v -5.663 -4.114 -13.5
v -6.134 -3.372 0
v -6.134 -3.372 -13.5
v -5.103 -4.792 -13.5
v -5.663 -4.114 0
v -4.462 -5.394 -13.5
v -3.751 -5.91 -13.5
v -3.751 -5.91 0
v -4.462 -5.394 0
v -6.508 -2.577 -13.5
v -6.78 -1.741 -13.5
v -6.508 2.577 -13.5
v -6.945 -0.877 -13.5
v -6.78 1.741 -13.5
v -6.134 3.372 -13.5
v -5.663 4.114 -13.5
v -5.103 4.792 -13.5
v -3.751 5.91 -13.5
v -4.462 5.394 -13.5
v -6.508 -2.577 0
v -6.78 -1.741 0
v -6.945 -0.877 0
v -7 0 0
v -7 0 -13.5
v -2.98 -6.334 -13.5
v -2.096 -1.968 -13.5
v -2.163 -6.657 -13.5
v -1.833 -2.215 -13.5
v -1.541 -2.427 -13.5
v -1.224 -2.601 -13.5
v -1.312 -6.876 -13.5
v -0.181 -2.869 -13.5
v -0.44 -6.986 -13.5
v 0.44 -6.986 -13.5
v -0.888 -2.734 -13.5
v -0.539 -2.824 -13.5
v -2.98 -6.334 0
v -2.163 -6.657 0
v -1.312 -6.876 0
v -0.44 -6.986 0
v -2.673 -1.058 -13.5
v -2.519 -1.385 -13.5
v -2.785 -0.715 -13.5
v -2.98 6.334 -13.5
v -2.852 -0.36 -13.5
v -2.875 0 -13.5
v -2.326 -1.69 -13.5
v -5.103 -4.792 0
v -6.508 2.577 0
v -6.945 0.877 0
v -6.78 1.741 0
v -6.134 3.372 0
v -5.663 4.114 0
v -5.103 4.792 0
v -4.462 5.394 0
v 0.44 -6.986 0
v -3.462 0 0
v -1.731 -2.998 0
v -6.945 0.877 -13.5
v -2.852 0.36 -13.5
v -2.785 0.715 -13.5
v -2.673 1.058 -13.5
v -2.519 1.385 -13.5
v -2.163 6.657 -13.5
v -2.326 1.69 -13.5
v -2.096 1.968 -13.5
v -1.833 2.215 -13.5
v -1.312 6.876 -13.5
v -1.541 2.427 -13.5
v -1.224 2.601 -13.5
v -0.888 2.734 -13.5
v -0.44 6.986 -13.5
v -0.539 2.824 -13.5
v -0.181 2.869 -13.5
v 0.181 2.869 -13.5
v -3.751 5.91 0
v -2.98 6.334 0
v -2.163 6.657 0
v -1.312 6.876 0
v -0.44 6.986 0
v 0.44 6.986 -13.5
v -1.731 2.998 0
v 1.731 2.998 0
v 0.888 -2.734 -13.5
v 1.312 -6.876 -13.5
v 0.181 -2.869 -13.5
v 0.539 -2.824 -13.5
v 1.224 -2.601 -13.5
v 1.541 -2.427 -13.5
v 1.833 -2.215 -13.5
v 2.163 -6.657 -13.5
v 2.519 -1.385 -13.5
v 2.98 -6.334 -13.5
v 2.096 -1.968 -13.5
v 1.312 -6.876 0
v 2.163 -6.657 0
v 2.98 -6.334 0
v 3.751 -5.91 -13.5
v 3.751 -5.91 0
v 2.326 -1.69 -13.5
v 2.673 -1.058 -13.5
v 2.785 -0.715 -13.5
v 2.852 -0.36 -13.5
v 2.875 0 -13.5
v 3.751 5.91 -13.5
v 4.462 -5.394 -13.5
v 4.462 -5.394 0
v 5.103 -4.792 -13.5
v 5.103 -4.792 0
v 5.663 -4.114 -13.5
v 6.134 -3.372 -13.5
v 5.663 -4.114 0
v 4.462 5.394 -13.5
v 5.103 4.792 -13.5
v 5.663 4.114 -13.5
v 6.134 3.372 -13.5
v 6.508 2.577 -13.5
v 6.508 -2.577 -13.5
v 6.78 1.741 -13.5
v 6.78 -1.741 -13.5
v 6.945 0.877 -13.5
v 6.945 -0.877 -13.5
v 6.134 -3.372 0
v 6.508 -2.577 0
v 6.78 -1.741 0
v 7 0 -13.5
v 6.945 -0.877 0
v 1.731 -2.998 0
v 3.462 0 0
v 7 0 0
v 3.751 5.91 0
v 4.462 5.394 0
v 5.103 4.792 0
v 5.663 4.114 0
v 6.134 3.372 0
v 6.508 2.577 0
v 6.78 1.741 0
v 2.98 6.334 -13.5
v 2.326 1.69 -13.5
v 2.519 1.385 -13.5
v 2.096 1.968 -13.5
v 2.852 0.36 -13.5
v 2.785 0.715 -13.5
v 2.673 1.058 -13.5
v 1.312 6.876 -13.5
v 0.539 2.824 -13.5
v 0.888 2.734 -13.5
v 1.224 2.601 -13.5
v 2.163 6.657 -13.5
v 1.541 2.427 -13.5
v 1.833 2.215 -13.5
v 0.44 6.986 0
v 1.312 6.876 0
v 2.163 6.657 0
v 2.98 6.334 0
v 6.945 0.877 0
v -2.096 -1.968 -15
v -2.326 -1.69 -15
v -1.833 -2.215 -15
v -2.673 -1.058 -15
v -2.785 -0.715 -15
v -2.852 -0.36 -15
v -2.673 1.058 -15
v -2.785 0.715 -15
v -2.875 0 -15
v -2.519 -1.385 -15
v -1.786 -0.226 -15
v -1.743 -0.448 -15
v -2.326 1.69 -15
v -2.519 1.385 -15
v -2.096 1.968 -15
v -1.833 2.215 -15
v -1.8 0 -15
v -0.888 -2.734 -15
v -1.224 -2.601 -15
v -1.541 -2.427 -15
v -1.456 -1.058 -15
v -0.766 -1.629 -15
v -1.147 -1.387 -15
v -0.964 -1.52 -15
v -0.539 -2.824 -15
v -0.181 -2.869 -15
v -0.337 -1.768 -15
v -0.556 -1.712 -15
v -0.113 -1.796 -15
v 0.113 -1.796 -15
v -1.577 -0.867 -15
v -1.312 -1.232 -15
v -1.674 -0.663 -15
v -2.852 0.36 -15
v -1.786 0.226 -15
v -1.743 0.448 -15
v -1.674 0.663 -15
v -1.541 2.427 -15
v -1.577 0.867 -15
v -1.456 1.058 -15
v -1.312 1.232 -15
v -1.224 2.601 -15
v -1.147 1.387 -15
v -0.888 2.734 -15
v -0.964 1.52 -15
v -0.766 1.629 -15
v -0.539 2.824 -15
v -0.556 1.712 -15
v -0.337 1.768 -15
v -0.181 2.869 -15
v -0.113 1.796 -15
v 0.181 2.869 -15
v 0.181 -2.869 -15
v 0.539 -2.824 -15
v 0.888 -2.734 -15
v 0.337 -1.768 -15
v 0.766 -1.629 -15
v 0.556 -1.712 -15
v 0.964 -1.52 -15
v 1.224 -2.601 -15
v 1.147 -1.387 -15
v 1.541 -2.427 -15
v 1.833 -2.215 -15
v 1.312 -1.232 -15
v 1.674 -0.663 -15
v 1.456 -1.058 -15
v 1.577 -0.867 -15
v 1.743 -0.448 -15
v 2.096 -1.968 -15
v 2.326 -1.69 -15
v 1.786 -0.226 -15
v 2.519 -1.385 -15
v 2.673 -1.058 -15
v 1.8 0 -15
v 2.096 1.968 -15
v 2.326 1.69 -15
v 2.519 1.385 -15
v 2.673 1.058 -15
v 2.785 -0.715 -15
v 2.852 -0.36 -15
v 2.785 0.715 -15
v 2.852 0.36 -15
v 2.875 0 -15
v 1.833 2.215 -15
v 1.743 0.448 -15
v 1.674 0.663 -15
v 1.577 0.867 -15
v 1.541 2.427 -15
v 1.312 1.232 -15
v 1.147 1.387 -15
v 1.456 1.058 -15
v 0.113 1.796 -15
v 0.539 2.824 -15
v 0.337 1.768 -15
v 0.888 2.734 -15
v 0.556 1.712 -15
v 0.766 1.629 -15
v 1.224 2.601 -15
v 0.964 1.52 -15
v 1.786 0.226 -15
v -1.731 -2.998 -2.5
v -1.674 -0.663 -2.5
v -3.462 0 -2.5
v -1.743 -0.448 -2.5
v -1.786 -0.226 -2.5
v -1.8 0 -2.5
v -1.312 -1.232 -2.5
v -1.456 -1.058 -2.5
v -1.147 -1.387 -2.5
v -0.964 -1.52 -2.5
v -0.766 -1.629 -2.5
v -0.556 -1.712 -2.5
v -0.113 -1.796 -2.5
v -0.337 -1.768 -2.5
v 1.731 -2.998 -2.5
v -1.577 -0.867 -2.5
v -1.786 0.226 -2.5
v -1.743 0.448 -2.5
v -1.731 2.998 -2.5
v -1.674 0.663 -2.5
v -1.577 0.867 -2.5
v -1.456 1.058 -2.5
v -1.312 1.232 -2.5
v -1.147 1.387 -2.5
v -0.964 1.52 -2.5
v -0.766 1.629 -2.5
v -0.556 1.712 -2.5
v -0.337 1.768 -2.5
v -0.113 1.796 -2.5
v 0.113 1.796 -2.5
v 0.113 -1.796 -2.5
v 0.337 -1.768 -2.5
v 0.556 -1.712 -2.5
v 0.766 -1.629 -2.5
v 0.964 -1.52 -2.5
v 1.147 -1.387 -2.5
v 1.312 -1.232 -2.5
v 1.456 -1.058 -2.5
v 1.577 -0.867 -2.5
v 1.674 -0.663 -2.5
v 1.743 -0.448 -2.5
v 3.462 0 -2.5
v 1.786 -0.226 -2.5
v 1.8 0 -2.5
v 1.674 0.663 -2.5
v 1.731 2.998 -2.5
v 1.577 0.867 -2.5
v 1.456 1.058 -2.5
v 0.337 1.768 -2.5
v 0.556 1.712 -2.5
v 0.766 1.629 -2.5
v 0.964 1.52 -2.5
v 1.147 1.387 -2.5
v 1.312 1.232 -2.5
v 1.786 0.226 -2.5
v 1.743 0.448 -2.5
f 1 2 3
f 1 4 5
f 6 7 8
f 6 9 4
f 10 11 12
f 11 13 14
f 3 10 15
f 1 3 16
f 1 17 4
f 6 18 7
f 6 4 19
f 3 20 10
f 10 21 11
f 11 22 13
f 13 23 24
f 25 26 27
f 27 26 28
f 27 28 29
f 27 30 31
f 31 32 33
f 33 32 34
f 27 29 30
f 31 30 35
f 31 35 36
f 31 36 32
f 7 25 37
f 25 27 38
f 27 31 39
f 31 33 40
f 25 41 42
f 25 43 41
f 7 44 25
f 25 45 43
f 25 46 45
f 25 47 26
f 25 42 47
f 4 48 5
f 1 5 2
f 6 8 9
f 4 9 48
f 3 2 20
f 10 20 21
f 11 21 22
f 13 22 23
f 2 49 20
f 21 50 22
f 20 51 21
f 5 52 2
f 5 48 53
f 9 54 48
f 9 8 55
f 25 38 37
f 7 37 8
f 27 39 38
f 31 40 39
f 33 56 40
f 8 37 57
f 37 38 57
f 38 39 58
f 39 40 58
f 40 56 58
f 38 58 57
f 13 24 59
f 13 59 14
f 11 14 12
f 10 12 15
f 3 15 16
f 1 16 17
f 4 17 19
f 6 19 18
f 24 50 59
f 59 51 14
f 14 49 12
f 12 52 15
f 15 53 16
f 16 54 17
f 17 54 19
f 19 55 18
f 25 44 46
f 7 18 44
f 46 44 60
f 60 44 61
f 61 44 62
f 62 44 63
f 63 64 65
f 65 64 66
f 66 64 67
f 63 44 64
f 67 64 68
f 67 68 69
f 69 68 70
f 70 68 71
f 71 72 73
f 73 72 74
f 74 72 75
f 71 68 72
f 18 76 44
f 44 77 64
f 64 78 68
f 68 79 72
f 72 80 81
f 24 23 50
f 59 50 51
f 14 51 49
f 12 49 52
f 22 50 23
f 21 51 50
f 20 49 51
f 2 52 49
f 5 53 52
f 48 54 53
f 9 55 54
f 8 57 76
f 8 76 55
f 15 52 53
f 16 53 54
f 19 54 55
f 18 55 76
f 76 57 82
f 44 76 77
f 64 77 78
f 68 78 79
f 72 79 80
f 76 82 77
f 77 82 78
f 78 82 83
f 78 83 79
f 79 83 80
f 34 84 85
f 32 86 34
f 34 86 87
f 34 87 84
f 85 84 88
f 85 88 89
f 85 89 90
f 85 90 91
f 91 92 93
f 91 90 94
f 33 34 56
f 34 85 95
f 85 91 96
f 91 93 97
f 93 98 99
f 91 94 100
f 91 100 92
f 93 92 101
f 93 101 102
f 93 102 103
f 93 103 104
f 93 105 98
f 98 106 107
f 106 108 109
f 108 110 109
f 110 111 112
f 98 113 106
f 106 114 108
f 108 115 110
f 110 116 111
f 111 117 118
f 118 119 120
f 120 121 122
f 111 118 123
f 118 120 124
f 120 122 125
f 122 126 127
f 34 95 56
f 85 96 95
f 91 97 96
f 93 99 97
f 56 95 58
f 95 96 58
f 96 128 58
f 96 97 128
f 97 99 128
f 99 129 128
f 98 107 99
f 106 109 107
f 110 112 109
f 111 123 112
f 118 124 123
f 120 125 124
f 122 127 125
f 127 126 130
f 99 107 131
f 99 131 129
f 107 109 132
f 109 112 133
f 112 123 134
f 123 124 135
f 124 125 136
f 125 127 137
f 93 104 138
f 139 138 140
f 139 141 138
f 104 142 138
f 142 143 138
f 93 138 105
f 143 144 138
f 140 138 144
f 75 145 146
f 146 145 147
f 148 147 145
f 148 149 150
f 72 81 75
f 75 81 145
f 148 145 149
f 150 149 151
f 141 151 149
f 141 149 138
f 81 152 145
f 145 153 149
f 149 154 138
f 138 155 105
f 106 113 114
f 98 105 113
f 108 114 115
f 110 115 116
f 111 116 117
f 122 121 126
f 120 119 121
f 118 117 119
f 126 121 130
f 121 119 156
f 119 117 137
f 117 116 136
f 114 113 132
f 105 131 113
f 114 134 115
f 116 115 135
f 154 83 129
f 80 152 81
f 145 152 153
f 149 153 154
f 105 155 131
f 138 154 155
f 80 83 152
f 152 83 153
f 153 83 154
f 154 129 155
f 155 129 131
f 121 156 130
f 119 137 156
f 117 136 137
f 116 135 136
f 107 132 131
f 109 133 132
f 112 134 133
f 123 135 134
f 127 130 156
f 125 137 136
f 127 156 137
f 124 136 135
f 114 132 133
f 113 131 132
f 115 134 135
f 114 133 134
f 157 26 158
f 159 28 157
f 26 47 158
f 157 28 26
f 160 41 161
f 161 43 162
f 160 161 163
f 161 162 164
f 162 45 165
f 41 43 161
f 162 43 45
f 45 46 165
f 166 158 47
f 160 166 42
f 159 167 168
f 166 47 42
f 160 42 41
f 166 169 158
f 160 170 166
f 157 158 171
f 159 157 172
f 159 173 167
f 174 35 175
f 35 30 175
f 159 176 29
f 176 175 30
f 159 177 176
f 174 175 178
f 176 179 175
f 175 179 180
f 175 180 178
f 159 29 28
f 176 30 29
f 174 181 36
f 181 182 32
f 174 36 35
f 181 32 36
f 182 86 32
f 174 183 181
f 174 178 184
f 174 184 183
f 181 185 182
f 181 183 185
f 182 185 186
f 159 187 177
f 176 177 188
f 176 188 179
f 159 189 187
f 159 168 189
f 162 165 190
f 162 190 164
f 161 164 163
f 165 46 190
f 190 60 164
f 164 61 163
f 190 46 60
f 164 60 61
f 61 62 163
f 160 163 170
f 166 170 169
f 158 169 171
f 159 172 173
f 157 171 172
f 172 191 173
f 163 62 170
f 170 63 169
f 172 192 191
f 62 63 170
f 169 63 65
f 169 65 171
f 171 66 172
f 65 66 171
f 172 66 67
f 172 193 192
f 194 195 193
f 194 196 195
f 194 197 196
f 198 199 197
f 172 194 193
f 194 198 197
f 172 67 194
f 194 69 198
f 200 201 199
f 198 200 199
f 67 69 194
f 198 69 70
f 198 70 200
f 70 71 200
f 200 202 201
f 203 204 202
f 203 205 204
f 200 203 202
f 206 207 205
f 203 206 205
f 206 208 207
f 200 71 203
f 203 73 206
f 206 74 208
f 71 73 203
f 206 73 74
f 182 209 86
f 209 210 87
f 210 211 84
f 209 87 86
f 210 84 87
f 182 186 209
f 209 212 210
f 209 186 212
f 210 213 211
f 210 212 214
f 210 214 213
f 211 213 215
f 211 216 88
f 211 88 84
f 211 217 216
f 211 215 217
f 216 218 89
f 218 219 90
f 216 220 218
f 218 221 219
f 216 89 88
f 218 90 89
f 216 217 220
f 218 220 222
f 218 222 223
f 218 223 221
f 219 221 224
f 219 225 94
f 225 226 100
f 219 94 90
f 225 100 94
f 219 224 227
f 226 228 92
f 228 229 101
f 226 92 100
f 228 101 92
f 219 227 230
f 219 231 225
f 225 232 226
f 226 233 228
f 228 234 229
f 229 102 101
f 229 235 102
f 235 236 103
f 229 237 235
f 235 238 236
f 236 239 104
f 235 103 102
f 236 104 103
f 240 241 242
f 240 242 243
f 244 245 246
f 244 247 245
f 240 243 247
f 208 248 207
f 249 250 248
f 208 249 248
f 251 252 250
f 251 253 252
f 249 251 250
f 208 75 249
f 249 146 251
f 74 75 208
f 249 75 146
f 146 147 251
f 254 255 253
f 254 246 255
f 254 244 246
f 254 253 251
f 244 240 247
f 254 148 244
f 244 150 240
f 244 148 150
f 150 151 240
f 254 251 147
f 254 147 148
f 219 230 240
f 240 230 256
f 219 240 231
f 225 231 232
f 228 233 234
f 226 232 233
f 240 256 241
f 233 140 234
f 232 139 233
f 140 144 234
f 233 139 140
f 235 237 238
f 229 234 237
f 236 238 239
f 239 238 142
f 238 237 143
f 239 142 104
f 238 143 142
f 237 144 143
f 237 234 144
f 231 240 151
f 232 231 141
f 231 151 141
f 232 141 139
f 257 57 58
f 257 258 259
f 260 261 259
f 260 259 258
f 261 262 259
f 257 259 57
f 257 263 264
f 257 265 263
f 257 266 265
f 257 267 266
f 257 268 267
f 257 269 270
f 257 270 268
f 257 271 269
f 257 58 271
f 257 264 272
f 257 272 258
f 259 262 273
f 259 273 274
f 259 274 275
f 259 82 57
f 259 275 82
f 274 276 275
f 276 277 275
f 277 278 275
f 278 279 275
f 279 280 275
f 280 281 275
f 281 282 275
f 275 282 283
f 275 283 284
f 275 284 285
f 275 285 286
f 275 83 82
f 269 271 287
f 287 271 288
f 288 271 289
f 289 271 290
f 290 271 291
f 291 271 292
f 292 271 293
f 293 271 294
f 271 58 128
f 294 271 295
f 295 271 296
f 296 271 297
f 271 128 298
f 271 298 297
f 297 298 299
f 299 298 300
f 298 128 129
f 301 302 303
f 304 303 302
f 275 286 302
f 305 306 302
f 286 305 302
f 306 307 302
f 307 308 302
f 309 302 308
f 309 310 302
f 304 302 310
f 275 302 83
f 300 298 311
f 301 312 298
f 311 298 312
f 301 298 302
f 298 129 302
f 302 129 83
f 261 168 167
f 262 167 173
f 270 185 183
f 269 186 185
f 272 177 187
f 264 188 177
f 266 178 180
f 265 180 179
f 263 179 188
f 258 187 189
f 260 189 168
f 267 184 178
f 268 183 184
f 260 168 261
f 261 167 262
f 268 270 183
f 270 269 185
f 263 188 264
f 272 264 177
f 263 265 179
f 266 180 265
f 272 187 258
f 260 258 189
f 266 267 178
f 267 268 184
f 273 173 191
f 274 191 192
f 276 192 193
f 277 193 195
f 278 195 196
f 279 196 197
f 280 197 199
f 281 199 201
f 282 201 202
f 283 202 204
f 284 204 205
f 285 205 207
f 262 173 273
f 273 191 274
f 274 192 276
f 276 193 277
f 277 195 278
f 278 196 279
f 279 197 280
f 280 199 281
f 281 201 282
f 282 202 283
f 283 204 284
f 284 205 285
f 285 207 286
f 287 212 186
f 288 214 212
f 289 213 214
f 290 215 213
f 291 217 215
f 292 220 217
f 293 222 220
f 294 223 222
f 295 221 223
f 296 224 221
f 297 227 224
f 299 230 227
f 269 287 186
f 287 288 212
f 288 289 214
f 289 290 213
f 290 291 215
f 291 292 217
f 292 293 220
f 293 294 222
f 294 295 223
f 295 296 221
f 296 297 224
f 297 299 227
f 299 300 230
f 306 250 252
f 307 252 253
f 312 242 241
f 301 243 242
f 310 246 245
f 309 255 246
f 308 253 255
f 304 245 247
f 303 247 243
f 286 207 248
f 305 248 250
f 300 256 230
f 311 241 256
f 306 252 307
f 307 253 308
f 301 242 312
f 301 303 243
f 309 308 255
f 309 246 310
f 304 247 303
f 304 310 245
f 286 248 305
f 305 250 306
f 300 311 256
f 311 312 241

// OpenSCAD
$fn = 50;

difference() {
	union() {
		translate(v = [0, 0, -13.5]) {
			cylinder(h = 13.5, r = 7.0);
		}
		#translate(v = [0, 0, -15.0]) {
			cylinder(h = 15, r = 2.875);
		}
	}
	union() {
		translate(v = [0, 0, 0]) {
			rotate(a = [0, 0, 0]) {
				difference() {
					union() {
						translate(v = [0, 0, -2.5]) {
							linear_extrude(height = 2.5) {
								polygon(points = [[3.4619999999999997, 0.0], [1.7310000000000003, 2.9981799479017264], [-1.7309999999999992, 2.9981799479017264], [-3.4619999999999997, 4.2397272186481365e-16], [-1.7310000000000014, -2.998179947901726], [1.7309999999999977, -2.9981799479017277]]);
							}
						}
					}
					union();
				}
			}
		}
		#translate(v = [0, 0, -100.0]) {
			cylinder(h = 200, r = 1.8);
		}
	}
}
